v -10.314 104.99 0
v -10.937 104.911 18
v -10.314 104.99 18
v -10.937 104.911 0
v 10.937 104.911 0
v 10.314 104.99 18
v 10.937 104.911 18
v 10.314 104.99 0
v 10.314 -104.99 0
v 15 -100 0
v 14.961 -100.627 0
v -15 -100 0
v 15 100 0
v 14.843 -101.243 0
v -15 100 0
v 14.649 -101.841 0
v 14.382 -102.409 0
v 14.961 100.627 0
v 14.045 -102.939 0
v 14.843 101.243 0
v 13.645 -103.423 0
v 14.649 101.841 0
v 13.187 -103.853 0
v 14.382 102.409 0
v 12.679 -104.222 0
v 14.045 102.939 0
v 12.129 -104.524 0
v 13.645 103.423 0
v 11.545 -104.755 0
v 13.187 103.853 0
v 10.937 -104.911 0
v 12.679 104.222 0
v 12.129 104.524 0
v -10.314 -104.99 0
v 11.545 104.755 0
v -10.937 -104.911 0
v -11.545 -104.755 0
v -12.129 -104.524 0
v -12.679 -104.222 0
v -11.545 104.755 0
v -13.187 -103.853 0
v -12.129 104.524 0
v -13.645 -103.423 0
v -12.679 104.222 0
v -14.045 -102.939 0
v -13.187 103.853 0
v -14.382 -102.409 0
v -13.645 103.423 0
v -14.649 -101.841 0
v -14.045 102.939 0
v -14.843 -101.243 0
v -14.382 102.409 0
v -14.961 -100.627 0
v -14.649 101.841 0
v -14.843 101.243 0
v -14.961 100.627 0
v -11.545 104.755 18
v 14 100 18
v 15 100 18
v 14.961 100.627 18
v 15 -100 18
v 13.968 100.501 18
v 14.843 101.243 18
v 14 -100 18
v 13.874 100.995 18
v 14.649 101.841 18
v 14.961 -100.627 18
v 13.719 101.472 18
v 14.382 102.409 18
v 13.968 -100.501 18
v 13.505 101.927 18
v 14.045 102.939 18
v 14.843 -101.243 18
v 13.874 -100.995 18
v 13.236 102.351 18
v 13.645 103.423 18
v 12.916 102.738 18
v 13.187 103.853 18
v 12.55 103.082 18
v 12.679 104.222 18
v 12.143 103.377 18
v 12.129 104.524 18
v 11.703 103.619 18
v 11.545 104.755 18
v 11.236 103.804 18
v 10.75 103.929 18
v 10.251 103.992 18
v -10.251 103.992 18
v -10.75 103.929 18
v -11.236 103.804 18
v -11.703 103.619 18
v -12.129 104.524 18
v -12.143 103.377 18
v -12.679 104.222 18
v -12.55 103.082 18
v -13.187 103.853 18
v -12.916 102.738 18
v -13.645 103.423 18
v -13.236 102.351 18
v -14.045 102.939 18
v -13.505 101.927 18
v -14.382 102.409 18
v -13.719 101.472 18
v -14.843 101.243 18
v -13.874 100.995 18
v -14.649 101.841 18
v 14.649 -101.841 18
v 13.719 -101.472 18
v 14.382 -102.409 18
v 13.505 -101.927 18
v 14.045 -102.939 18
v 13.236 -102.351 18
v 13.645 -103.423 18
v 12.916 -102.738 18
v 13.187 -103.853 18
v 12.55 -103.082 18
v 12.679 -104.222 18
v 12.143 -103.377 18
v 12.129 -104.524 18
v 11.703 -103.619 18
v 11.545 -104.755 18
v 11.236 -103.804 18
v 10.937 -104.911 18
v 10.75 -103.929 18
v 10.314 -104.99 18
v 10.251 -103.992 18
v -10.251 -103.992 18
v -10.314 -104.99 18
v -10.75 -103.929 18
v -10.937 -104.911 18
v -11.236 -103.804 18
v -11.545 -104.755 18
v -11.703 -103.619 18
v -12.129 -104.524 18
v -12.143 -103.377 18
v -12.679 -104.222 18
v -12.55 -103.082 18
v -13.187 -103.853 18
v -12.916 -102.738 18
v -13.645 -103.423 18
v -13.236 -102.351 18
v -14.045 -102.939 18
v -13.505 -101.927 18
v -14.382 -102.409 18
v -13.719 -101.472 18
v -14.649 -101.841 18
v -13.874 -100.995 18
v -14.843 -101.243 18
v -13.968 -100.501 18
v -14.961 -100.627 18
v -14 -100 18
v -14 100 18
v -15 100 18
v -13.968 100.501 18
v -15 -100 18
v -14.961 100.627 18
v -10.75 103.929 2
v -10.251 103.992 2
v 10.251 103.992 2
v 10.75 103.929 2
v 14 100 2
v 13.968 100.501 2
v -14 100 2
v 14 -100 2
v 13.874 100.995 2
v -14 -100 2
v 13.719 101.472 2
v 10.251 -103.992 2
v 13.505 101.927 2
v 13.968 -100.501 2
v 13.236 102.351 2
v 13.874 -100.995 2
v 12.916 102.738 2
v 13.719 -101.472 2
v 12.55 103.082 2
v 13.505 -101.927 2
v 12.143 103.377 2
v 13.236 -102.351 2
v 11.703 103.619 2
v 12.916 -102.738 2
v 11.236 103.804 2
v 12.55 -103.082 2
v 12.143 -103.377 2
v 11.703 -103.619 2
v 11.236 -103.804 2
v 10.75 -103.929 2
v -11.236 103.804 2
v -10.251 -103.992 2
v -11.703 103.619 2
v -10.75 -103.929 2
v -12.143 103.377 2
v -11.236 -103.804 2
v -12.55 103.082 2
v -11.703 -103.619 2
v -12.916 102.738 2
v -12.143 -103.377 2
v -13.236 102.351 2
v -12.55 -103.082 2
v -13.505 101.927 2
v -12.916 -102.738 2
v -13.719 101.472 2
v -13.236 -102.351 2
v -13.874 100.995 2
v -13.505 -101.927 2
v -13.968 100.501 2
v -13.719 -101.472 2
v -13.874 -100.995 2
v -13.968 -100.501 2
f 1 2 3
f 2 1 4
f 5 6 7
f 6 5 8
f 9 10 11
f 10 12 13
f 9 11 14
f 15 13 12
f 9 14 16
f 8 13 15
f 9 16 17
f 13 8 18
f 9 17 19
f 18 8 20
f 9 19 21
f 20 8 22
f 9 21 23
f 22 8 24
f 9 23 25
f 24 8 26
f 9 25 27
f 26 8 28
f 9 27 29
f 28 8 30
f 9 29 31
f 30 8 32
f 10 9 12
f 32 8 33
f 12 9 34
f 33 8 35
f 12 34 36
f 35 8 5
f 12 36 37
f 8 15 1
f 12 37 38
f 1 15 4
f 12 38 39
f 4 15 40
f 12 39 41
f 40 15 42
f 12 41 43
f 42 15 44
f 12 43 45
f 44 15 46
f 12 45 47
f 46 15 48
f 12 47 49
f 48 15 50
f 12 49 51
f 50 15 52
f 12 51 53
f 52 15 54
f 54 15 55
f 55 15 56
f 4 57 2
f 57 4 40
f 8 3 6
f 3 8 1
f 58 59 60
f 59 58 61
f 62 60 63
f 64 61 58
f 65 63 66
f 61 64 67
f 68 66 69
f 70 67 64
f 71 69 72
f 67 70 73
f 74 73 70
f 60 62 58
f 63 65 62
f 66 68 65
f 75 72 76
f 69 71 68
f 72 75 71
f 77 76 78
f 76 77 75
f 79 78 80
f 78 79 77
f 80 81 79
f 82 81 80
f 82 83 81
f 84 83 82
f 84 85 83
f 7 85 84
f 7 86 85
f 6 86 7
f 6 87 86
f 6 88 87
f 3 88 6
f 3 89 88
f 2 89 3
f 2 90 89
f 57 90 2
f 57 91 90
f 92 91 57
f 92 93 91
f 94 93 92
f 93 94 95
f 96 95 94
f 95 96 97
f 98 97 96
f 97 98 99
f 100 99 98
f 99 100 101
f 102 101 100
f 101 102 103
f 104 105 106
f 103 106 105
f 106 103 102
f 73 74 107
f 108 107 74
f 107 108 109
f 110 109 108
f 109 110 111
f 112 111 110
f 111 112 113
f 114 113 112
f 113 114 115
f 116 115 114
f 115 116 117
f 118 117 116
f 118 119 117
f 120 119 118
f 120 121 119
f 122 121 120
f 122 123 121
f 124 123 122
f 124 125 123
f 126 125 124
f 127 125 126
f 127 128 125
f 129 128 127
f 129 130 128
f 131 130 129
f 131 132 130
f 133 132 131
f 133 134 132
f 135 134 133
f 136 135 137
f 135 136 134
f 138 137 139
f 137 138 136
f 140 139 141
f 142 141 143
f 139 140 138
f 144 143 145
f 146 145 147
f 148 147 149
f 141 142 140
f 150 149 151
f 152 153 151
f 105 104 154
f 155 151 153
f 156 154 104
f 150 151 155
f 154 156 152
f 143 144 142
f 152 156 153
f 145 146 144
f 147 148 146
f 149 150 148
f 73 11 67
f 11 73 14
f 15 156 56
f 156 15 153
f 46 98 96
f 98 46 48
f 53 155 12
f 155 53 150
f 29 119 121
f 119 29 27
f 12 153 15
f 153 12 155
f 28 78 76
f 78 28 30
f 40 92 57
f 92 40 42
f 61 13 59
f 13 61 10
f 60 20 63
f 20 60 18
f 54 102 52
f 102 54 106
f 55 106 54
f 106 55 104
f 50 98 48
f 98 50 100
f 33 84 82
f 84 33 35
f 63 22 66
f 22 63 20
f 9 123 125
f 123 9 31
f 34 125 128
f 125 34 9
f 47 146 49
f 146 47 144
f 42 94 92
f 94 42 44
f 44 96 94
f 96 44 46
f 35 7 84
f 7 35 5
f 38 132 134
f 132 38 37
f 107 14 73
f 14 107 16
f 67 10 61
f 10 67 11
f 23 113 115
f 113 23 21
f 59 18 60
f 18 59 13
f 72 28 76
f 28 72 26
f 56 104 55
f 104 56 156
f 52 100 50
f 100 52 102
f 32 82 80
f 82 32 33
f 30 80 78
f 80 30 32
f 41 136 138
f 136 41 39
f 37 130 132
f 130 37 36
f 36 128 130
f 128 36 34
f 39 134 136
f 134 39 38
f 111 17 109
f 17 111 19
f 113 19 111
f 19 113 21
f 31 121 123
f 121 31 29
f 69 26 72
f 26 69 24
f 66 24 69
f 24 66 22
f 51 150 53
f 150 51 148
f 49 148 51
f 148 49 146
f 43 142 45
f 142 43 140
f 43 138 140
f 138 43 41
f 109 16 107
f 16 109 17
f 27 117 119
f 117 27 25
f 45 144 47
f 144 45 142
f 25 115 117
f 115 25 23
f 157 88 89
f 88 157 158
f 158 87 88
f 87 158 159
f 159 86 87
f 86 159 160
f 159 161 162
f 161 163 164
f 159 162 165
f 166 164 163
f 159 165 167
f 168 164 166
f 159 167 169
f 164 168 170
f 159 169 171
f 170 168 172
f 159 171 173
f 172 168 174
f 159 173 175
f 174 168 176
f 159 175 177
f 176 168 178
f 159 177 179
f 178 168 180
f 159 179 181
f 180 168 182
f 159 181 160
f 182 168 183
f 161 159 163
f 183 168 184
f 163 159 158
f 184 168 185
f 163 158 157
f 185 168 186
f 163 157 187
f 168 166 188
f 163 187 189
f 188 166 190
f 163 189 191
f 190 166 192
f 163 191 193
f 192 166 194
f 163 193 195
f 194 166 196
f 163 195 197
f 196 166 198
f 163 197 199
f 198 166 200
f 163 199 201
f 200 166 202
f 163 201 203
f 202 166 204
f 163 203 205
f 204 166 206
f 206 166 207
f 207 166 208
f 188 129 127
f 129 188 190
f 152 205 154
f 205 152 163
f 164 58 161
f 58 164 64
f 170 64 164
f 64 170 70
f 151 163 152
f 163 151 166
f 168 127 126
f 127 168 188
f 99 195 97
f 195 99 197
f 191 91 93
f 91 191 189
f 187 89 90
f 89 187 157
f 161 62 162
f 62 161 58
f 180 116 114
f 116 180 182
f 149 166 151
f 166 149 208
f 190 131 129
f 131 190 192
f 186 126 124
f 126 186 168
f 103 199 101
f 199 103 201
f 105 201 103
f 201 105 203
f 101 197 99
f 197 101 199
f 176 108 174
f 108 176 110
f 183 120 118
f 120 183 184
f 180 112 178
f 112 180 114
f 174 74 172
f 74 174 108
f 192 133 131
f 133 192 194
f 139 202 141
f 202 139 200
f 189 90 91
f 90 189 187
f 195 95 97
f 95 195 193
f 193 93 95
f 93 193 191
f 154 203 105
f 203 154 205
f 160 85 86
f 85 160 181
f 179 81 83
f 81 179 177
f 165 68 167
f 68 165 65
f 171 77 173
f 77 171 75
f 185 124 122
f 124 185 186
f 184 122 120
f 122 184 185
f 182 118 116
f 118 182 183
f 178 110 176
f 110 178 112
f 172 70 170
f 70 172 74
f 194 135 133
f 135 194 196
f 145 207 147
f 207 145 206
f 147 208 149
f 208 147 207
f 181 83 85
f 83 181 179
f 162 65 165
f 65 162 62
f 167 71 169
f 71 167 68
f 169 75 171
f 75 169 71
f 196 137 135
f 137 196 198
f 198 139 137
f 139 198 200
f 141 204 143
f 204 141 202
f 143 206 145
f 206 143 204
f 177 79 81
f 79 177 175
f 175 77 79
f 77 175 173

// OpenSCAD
$fn = 50;


difference() {
	union() {
		hull() {
			translate(v = [-10.0000000000, 100.0000000000, 0]) {
				cylinder(h = 18, r = 5);
			}
			translate(v = [10.0000000000, 100.0000000000, 0]) {
				cylinder(h = 18, r = 5);
			}
			translate(v = [-10.0000000000, -100.0000000000, 0]) {
				cylinder(h = 18, r = 5);
			}
			translate(v = [10.0000000000, -100.0000000000, 0]) {
				cylinder(h = 18, r = 5);
			}
		}
	}
	union() {
		translate(v = [0, 0, 2]) {
			hull() {
				translate(v = [-10.0000000000, 100.0000000000, 0]) {
					cylinder(h = 16, r = 4);
				}
				translate(v = [10.0000000000, 100.0000000000, 0]) {
					cylinder(h = 16, r = 4);
				}
				translate(v = [-10.0000000000, -100.0000000000, 0]) {
					cylinder(h = 16, r = 4);
				}
				translate(v = [10.0000000000, -100.0000000000, 0]) {
					cylinder(h = 16, r = 4);
				}
			}
		}
	}
}
